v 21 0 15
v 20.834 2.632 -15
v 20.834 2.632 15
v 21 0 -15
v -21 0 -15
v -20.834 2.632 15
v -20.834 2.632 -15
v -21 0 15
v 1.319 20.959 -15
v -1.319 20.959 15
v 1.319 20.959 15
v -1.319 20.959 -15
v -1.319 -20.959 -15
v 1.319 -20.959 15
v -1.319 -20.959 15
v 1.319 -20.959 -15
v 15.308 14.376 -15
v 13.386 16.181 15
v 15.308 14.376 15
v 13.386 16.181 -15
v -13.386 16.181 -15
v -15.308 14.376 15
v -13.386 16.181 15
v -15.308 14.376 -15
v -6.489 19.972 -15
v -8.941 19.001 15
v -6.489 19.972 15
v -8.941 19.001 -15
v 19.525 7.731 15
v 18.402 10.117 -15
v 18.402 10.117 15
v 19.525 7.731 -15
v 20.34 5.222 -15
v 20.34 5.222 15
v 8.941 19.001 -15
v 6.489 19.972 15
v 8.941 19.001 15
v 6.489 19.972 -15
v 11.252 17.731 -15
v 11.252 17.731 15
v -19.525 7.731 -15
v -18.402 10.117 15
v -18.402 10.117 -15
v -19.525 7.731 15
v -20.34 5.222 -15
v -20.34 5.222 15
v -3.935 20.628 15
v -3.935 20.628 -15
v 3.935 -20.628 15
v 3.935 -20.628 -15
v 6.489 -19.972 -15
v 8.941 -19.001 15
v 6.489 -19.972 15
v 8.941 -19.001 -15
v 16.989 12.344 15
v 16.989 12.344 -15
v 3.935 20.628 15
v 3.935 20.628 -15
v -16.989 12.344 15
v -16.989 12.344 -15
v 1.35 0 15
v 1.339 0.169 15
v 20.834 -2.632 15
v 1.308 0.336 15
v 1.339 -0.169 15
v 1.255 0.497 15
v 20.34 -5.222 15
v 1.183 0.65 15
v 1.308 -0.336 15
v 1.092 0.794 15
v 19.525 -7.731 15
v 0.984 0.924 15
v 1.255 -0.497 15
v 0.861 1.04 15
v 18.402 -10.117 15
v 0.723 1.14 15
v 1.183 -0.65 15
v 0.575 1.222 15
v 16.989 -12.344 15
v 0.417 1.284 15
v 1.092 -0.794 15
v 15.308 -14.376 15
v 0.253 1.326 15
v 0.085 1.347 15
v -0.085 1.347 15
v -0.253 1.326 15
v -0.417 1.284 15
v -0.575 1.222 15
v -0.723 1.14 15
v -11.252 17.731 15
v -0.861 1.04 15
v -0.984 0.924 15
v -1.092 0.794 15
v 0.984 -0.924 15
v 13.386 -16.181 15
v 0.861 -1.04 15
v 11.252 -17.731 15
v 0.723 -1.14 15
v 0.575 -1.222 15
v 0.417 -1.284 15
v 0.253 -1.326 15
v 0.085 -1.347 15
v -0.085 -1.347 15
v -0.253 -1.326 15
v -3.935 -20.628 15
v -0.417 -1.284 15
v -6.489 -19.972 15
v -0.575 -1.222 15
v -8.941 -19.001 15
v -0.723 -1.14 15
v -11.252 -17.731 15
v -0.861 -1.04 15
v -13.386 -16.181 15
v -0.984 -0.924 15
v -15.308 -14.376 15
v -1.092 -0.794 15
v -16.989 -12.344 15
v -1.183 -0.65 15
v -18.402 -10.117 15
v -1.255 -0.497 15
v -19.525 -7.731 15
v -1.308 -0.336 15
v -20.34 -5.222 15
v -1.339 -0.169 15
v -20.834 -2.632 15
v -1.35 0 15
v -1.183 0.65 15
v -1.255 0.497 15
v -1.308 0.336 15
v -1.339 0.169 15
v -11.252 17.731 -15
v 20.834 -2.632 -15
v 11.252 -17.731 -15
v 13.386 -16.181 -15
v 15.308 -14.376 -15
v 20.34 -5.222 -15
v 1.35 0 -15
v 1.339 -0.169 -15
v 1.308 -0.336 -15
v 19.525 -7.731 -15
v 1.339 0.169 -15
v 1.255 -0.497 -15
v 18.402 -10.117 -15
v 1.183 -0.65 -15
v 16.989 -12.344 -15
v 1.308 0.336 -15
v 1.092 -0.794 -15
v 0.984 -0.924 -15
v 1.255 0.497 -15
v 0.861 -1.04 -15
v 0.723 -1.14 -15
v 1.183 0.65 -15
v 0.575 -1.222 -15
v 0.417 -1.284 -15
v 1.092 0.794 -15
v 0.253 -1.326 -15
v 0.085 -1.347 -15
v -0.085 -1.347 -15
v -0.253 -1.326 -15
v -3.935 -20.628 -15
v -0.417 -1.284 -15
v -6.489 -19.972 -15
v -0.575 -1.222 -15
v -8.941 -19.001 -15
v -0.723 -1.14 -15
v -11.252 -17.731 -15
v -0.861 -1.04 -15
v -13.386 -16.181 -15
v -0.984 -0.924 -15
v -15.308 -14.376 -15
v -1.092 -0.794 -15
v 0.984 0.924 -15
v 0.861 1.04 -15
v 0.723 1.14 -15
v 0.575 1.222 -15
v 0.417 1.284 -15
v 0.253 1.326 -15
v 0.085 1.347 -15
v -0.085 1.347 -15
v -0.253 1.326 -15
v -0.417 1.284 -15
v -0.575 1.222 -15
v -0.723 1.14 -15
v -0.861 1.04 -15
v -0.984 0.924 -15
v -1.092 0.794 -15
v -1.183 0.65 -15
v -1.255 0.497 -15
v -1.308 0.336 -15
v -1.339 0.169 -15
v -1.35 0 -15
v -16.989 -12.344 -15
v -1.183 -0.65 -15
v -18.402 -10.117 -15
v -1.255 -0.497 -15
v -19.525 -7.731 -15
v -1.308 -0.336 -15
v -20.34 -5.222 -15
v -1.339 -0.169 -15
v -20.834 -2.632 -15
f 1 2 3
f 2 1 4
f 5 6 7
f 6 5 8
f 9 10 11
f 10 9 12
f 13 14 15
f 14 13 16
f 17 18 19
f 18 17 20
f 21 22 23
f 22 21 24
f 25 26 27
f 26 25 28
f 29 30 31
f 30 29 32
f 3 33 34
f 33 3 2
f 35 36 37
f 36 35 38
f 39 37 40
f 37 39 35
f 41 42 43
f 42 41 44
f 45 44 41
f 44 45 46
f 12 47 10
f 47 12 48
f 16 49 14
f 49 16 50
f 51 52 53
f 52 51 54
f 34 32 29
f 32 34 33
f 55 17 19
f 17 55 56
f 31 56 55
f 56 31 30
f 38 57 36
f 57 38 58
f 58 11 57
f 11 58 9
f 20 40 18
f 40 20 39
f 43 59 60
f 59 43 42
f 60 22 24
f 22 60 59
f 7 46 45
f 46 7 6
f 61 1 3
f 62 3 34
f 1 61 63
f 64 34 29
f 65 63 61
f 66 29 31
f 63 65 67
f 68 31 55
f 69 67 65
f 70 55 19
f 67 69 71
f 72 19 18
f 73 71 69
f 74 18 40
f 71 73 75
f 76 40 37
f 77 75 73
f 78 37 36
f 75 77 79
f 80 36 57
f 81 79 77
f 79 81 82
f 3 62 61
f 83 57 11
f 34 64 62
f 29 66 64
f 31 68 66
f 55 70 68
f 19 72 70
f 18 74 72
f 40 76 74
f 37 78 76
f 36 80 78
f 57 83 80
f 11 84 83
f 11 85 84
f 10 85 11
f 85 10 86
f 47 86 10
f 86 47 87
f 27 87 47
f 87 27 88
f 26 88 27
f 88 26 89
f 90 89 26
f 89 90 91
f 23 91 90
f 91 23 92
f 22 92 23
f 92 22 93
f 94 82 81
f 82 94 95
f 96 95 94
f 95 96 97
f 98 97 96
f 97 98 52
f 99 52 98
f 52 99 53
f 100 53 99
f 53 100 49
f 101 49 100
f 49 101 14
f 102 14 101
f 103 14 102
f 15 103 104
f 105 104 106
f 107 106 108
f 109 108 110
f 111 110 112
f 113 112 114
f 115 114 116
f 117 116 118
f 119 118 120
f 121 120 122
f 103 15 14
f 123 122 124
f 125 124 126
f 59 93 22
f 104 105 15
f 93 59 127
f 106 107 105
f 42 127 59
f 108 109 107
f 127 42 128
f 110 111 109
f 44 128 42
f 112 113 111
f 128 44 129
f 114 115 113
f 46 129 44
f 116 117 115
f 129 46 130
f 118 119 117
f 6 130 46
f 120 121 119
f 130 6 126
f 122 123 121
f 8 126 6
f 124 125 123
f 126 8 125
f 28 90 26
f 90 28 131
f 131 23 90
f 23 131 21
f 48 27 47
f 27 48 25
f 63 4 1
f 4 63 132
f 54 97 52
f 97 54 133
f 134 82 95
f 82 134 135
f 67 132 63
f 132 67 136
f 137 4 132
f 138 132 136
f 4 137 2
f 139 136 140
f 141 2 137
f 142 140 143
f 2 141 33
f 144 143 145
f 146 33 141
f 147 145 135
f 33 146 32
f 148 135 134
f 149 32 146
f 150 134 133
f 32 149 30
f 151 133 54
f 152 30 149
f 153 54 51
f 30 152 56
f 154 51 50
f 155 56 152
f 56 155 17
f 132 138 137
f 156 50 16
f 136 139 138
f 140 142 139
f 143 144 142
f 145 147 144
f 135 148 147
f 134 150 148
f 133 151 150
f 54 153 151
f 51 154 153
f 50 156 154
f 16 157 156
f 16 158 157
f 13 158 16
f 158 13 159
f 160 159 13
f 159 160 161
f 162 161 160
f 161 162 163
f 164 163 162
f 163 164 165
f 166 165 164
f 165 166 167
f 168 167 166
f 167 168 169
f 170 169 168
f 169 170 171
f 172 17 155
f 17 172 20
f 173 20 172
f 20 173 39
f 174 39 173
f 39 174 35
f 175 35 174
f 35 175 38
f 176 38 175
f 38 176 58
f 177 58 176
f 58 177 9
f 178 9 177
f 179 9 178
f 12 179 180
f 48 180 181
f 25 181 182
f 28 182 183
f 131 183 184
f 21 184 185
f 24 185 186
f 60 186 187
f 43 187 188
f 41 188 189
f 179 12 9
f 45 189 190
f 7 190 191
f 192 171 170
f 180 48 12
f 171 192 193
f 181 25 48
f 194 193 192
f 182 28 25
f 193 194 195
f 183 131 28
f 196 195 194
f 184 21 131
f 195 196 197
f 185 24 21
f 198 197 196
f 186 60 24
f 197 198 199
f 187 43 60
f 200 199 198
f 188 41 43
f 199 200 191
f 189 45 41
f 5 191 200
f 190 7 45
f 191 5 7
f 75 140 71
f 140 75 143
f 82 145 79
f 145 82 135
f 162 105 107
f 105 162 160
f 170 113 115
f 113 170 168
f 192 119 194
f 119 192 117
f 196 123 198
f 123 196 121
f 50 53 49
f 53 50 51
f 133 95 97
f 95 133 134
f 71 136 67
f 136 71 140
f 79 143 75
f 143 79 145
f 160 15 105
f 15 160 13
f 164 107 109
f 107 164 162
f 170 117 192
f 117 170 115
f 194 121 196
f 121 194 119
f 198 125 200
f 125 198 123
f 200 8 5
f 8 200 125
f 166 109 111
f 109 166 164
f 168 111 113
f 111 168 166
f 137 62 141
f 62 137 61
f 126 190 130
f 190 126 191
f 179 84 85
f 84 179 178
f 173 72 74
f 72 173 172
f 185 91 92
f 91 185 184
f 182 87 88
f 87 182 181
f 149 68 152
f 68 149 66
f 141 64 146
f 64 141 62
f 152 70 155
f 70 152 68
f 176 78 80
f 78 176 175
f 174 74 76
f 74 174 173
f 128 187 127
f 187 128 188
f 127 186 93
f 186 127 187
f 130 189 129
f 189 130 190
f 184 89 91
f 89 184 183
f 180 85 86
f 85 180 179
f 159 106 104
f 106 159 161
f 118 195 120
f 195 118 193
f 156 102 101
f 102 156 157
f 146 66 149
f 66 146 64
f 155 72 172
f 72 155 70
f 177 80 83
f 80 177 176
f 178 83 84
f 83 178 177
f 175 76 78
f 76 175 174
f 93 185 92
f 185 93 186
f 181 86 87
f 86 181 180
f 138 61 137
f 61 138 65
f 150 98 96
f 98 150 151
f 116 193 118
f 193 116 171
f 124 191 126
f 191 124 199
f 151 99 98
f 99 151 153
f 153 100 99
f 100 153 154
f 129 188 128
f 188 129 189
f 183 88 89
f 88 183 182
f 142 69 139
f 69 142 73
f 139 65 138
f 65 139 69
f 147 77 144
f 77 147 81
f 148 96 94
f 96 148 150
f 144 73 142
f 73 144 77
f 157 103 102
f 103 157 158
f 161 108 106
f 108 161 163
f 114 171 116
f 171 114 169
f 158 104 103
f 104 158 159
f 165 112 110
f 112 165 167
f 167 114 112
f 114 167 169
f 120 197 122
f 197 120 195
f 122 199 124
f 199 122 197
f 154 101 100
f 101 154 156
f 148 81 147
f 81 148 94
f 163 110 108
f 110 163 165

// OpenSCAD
$fn = 50;


difference() {
	union() {
		translate(v = [0, 0, -15.0000000000]) {
			cylinder(h = 30, r = 21.0000000000);
		}
	}
	union() {
		translate(v = [0, 0, -100.0000000000]) {
			cylinder(h = 200, r = 1.3500000000);
		}
	}
}
